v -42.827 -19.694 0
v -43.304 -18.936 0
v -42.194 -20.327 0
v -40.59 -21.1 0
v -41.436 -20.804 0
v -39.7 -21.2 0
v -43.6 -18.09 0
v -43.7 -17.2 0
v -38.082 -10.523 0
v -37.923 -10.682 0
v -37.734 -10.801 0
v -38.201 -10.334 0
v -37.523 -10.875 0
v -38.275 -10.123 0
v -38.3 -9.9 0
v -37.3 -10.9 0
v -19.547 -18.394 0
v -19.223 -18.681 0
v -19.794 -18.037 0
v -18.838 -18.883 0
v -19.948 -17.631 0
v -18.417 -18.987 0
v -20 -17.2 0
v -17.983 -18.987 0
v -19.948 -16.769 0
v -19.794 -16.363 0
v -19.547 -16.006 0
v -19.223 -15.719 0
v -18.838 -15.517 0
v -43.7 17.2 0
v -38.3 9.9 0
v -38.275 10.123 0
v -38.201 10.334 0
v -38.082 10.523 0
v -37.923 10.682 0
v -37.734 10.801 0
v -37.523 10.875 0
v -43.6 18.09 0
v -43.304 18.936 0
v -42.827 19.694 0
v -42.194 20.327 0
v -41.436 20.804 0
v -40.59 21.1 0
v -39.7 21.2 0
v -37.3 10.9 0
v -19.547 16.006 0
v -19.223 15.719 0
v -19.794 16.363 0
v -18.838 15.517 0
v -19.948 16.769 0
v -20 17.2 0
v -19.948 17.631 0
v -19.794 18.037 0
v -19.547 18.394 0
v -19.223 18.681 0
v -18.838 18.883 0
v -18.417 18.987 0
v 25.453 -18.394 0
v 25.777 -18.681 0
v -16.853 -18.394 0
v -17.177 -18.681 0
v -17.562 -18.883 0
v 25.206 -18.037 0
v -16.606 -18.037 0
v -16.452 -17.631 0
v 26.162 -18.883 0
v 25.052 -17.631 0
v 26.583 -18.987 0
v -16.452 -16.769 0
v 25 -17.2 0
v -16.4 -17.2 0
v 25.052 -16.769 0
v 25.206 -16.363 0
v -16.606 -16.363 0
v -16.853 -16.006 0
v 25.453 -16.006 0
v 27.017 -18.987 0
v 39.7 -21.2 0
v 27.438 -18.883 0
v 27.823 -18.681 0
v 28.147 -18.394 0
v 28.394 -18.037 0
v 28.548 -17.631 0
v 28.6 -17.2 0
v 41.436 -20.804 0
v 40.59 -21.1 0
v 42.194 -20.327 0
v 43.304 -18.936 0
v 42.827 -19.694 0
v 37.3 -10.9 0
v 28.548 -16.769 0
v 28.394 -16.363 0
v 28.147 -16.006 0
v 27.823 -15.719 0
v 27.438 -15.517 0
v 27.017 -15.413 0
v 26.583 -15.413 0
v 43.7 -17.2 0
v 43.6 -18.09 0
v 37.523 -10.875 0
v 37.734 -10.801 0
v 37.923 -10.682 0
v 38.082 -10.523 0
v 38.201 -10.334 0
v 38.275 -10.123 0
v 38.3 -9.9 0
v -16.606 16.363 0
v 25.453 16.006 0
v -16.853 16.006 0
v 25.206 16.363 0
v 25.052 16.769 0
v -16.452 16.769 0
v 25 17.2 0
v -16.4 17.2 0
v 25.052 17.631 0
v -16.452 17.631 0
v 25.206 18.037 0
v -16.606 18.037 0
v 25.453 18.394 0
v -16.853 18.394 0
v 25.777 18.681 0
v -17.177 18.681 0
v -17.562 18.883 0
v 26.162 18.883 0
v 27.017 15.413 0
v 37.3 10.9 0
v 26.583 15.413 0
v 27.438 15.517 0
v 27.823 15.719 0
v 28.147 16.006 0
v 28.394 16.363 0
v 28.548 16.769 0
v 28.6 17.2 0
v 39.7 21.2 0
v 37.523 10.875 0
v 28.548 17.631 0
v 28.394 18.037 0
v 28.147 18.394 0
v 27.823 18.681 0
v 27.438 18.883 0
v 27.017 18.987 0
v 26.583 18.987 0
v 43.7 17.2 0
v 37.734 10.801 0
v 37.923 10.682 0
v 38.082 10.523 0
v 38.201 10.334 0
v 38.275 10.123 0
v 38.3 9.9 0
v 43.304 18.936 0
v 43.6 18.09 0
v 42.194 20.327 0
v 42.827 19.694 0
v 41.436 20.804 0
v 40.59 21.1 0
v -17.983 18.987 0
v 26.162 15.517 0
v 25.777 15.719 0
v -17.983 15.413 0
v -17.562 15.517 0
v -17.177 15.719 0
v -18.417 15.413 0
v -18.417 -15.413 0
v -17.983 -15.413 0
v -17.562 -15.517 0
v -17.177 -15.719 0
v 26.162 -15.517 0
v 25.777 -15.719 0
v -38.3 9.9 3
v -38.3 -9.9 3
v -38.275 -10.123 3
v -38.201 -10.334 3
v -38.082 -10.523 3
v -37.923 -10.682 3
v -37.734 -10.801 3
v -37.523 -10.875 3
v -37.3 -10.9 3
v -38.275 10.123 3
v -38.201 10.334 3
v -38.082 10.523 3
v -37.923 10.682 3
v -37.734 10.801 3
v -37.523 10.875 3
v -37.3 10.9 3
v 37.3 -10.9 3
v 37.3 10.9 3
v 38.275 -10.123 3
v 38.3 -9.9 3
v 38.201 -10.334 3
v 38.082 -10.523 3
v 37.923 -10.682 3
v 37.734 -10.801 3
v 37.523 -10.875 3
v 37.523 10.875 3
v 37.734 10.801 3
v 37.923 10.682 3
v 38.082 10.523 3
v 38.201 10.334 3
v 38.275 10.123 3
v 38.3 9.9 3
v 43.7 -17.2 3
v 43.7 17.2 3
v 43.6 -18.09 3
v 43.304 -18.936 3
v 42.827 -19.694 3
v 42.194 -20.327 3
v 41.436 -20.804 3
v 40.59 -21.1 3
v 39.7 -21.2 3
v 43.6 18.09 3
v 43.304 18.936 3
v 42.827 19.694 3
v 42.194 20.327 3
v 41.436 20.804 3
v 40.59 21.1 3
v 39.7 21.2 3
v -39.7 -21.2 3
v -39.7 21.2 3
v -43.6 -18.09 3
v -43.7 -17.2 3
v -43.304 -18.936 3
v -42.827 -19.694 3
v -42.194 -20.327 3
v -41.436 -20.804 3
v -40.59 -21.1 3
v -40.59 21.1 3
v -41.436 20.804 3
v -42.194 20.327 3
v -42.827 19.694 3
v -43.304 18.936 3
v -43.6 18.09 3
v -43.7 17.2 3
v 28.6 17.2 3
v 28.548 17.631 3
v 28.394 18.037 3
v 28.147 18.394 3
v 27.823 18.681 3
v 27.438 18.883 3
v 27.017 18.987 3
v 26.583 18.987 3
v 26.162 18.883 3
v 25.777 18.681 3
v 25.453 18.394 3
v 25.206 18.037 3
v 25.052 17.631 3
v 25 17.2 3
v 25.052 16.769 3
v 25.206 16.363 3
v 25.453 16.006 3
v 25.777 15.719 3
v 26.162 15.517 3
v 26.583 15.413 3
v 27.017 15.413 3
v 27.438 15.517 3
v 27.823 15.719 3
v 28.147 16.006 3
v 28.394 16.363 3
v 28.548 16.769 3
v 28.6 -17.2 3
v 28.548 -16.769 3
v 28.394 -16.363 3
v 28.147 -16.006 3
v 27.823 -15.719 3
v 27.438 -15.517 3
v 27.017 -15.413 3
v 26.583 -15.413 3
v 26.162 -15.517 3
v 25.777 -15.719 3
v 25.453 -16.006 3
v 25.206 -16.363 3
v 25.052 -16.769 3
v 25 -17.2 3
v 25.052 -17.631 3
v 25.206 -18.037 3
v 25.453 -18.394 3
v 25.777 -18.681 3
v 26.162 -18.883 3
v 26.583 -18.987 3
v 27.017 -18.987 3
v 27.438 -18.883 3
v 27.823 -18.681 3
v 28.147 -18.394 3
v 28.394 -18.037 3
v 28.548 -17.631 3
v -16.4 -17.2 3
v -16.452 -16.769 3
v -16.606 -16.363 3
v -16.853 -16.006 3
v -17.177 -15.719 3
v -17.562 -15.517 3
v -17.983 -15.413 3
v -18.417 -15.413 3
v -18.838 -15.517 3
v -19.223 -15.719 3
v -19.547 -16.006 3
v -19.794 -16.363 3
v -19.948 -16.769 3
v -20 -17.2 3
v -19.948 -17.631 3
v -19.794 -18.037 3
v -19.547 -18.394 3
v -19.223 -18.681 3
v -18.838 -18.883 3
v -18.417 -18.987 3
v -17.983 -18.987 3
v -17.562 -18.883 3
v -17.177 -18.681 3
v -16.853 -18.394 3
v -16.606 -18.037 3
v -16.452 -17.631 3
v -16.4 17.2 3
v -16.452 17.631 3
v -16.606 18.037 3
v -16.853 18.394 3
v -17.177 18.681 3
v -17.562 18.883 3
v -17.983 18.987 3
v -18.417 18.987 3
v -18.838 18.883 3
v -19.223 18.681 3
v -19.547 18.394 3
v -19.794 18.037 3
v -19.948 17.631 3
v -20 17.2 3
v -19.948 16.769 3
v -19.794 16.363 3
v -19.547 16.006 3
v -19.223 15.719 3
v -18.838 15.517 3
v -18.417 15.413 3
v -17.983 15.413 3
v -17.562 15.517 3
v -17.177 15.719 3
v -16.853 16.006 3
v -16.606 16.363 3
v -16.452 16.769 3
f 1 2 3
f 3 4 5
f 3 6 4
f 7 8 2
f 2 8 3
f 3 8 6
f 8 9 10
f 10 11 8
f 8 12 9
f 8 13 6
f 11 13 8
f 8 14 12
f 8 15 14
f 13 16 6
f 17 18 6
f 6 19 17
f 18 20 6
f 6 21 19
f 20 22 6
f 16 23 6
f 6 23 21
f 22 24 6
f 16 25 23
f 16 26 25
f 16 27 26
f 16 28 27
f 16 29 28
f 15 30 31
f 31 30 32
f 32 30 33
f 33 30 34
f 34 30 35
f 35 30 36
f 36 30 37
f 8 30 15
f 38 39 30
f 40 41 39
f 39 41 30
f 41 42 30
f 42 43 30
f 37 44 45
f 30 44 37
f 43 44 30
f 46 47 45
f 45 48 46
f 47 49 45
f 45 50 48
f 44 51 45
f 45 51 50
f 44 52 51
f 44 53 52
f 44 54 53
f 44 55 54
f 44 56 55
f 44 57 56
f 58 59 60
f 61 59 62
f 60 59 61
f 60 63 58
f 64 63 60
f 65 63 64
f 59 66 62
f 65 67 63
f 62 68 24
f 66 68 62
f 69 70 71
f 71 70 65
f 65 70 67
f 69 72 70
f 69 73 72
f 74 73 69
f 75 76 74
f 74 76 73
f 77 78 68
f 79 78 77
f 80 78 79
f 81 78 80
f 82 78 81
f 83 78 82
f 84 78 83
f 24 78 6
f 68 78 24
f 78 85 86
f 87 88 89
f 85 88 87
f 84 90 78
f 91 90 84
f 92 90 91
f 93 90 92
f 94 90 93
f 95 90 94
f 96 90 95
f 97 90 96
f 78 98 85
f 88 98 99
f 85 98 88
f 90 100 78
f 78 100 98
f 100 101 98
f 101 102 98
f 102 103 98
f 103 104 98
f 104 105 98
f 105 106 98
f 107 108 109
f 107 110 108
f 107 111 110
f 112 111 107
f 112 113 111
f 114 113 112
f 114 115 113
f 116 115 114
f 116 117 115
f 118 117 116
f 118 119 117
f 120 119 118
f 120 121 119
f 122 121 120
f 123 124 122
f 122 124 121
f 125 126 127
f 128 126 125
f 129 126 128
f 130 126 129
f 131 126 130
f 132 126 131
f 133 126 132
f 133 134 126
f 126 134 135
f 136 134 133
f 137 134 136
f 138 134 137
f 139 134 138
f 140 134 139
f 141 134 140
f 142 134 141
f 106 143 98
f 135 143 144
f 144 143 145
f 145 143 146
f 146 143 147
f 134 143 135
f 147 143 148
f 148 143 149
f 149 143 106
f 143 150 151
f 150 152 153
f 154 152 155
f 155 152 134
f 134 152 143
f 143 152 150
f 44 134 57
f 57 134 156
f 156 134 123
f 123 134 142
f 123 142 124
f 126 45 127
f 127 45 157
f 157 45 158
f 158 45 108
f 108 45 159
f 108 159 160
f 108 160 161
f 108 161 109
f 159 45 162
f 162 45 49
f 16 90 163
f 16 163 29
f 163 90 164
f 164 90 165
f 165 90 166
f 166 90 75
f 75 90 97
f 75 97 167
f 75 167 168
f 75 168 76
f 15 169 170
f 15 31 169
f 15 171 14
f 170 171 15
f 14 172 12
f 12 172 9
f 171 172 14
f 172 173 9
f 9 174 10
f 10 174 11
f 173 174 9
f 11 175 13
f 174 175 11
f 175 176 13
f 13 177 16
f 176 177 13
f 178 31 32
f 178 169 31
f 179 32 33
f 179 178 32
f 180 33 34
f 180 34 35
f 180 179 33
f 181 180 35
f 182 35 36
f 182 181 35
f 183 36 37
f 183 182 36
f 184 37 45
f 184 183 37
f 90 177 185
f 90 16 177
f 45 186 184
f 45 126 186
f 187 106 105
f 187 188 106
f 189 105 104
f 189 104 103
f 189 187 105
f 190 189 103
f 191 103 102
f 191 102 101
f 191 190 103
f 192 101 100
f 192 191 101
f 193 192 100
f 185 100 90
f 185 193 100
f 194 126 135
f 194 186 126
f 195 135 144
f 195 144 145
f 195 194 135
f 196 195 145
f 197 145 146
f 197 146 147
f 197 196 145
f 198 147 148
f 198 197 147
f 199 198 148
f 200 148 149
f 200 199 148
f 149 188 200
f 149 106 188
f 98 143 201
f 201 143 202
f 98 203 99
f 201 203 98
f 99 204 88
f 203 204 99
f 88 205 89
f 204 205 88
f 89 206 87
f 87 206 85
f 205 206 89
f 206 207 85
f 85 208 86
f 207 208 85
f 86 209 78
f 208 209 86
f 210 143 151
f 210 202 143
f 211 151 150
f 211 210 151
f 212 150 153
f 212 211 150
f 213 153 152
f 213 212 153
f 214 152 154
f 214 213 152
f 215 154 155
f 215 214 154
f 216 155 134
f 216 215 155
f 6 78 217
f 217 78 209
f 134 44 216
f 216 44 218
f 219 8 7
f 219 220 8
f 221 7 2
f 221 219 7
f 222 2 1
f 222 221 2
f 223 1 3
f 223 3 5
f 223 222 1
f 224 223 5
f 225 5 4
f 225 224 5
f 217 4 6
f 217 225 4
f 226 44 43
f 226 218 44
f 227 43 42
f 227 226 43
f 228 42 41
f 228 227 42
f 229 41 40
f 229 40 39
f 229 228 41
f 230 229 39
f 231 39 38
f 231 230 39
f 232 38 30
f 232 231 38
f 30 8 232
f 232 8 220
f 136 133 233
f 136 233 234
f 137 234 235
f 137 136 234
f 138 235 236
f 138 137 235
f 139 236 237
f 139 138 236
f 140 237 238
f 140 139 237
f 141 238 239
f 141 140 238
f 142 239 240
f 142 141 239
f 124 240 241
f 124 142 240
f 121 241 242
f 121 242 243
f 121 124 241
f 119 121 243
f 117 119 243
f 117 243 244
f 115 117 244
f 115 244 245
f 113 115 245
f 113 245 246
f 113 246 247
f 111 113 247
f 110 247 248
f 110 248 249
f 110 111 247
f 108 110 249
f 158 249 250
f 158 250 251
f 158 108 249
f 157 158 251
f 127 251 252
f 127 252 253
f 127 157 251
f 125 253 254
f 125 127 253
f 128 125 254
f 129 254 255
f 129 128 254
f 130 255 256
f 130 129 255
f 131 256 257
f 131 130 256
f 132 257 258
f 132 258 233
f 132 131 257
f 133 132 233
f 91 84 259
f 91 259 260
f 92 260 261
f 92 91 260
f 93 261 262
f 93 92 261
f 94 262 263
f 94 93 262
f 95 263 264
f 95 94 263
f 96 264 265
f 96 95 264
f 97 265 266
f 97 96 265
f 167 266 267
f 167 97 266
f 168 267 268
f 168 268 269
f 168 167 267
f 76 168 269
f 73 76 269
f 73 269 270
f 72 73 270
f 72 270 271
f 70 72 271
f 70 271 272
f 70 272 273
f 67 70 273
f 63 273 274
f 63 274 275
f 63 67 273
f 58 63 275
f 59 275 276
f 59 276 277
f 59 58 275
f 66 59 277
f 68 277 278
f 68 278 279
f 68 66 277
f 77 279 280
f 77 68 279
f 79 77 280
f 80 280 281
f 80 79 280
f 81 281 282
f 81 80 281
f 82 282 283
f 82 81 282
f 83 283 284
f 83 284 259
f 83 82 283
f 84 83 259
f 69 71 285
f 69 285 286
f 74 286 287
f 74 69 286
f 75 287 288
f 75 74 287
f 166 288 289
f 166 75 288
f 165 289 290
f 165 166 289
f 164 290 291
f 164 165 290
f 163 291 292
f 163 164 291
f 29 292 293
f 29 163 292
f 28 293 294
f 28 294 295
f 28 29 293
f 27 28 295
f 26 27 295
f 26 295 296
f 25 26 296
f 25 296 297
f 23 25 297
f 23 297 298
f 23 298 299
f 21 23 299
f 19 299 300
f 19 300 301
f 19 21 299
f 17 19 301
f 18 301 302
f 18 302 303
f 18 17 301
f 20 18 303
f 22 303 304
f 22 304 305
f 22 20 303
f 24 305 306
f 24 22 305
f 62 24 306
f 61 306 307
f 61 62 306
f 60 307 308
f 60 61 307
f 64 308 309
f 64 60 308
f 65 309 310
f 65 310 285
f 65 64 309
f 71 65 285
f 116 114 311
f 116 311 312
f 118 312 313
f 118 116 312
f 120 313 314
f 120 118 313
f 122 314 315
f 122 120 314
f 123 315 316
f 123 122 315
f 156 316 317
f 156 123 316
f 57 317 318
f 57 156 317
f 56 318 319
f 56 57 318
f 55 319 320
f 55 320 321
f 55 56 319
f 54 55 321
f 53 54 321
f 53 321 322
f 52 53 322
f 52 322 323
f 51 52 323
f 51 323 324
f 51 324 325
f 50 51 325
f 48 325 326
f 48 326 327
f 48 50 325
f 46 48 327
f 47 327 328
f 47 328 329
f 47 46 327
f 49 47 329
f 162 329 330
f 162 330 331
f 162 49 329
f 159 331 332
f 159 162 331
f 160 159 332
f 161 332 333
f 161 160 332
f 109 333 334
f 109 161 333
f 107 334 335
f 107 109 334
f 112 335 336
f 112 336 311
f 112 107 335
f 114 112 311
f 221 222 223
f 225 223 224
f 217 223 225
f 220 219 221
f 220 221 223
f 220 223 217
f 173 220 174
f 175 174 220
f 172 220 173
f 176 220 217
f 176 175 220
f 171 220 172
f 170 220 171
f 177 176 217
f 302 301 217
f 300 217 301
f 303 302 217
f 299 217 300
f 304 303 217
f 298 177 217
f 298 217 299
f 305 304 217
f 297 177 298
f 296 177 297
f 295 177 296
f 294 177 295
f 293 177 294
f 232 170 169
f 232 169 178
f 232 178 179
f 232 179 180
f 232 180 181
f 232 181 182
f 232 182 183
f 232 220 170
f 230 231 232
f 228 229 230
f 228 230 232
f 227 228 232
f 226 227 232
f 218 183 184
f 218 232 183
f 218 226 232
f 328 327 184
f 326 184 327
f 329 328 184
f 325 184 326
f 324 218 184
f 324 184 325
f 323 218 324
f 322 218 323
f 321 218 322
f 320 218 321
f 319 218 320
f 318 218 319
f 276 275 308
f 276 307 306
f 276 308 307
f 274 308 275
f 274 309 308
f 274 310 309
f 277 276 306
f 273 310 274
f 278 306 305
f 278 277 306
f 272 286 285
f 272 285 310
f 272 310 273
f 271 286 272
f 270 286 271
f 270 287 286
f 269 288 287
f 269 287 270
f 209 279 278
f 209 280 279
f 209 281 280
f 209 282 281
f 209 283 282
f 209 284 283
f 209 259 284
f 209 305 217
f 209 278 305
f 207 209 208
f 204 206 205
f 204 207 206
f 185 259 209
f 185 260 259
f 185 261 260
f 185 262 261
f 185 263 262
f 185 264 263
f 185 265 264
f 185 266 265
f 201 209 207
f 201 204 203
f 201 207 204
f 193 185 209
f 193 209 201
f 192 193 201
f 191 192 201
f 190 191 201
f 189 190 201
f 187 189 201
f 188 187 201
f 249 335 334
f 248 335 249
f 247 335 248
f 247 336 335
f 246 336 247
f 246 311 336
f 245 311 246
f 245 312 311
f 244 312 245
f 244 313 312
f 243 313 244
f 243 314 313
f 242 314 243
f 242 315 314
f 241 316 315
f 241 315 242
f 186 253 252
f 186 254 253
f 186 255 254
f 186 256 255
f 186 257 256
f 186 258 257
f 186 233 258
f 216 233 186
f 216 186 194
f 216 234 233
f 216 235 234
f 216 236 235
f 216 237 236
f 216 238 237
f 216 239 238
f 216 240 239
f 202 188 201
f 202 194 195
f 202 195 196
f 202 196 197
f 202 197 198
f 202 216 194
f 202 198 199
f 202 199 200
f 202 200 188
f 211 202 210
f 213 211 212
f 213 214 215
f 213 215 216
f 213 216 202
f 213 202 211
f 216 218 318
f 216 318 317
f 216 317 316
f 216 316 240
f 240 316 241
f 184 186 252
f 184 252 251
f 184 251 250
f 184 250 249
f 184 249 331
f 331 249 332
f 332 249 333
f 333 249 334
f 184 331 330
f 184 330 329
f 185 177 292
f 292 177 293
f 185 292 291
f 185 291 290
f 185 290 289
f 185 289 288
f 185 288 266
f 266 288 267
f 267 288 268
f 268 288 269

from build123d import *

# Parameters (mm, degrees)
SKETCH_W    = 87.4
SKETCH_H    = 42.4
SKETCH_R    = 1.8
SKETCH_W_2  = 76.6
SKETCH_H_2  = 21.8
PAD_DEPTH   = 3
FILLET_R    = 4
FILLET001_R = 1


with BuildPart() as part:
    # Sketch → Pad (new body)
    with BuildSketch(Plane.XY):
        Rectangle(SKETCH_W, SKETCH_H)
        with Locations((-18.2, 17.2)):
            Circle(SKETCH_R, mode=Mode.SUBTRACT)
        with Locations((-18.2, -17.2)):
            Circle(SKETCH_R, mode=Mode.SUBTRACT)
        with Locations((26.8, -17.2)):
            Circle(SKETCH_R, mode=Mode.SUBTRACT)
        with Locations((26.8, 17.2)):
            Circle(SKETCH_R, mode=Mode.SUBTRACT)
        Rectangle(SKETCH_W_2, SKETCH_H_2, mode=Mode.SUBTRACT)
    extrude(amount=PAD_DEPTH)

    # Fillet
    fillet_edges = [part.edges().sort_by_distance(p)[0] for p in [
        (43.7, -21.2, 1.5),
        (-43.7, -21.2, 1.5),
        (43.7, 21.2, 1.5),
        (-43.7, 21.2, 1.5),
    ]]
    fillet(fillet_edges, radius=FILLET_R)

    # Fillet001
    fillet001_edges = [part.edges().sort_by_distance(p)[0] for p in [
        (38.3, 10.9, 1.5),
        (38.3, -10.9, 1.5),
        (-38.3, -10.9, 1.5),
        (-38.3, 10.9, 1.5),
    ]]
    fillet(fillet001_edges, radius=FILLET001_R)


solid = part.part
